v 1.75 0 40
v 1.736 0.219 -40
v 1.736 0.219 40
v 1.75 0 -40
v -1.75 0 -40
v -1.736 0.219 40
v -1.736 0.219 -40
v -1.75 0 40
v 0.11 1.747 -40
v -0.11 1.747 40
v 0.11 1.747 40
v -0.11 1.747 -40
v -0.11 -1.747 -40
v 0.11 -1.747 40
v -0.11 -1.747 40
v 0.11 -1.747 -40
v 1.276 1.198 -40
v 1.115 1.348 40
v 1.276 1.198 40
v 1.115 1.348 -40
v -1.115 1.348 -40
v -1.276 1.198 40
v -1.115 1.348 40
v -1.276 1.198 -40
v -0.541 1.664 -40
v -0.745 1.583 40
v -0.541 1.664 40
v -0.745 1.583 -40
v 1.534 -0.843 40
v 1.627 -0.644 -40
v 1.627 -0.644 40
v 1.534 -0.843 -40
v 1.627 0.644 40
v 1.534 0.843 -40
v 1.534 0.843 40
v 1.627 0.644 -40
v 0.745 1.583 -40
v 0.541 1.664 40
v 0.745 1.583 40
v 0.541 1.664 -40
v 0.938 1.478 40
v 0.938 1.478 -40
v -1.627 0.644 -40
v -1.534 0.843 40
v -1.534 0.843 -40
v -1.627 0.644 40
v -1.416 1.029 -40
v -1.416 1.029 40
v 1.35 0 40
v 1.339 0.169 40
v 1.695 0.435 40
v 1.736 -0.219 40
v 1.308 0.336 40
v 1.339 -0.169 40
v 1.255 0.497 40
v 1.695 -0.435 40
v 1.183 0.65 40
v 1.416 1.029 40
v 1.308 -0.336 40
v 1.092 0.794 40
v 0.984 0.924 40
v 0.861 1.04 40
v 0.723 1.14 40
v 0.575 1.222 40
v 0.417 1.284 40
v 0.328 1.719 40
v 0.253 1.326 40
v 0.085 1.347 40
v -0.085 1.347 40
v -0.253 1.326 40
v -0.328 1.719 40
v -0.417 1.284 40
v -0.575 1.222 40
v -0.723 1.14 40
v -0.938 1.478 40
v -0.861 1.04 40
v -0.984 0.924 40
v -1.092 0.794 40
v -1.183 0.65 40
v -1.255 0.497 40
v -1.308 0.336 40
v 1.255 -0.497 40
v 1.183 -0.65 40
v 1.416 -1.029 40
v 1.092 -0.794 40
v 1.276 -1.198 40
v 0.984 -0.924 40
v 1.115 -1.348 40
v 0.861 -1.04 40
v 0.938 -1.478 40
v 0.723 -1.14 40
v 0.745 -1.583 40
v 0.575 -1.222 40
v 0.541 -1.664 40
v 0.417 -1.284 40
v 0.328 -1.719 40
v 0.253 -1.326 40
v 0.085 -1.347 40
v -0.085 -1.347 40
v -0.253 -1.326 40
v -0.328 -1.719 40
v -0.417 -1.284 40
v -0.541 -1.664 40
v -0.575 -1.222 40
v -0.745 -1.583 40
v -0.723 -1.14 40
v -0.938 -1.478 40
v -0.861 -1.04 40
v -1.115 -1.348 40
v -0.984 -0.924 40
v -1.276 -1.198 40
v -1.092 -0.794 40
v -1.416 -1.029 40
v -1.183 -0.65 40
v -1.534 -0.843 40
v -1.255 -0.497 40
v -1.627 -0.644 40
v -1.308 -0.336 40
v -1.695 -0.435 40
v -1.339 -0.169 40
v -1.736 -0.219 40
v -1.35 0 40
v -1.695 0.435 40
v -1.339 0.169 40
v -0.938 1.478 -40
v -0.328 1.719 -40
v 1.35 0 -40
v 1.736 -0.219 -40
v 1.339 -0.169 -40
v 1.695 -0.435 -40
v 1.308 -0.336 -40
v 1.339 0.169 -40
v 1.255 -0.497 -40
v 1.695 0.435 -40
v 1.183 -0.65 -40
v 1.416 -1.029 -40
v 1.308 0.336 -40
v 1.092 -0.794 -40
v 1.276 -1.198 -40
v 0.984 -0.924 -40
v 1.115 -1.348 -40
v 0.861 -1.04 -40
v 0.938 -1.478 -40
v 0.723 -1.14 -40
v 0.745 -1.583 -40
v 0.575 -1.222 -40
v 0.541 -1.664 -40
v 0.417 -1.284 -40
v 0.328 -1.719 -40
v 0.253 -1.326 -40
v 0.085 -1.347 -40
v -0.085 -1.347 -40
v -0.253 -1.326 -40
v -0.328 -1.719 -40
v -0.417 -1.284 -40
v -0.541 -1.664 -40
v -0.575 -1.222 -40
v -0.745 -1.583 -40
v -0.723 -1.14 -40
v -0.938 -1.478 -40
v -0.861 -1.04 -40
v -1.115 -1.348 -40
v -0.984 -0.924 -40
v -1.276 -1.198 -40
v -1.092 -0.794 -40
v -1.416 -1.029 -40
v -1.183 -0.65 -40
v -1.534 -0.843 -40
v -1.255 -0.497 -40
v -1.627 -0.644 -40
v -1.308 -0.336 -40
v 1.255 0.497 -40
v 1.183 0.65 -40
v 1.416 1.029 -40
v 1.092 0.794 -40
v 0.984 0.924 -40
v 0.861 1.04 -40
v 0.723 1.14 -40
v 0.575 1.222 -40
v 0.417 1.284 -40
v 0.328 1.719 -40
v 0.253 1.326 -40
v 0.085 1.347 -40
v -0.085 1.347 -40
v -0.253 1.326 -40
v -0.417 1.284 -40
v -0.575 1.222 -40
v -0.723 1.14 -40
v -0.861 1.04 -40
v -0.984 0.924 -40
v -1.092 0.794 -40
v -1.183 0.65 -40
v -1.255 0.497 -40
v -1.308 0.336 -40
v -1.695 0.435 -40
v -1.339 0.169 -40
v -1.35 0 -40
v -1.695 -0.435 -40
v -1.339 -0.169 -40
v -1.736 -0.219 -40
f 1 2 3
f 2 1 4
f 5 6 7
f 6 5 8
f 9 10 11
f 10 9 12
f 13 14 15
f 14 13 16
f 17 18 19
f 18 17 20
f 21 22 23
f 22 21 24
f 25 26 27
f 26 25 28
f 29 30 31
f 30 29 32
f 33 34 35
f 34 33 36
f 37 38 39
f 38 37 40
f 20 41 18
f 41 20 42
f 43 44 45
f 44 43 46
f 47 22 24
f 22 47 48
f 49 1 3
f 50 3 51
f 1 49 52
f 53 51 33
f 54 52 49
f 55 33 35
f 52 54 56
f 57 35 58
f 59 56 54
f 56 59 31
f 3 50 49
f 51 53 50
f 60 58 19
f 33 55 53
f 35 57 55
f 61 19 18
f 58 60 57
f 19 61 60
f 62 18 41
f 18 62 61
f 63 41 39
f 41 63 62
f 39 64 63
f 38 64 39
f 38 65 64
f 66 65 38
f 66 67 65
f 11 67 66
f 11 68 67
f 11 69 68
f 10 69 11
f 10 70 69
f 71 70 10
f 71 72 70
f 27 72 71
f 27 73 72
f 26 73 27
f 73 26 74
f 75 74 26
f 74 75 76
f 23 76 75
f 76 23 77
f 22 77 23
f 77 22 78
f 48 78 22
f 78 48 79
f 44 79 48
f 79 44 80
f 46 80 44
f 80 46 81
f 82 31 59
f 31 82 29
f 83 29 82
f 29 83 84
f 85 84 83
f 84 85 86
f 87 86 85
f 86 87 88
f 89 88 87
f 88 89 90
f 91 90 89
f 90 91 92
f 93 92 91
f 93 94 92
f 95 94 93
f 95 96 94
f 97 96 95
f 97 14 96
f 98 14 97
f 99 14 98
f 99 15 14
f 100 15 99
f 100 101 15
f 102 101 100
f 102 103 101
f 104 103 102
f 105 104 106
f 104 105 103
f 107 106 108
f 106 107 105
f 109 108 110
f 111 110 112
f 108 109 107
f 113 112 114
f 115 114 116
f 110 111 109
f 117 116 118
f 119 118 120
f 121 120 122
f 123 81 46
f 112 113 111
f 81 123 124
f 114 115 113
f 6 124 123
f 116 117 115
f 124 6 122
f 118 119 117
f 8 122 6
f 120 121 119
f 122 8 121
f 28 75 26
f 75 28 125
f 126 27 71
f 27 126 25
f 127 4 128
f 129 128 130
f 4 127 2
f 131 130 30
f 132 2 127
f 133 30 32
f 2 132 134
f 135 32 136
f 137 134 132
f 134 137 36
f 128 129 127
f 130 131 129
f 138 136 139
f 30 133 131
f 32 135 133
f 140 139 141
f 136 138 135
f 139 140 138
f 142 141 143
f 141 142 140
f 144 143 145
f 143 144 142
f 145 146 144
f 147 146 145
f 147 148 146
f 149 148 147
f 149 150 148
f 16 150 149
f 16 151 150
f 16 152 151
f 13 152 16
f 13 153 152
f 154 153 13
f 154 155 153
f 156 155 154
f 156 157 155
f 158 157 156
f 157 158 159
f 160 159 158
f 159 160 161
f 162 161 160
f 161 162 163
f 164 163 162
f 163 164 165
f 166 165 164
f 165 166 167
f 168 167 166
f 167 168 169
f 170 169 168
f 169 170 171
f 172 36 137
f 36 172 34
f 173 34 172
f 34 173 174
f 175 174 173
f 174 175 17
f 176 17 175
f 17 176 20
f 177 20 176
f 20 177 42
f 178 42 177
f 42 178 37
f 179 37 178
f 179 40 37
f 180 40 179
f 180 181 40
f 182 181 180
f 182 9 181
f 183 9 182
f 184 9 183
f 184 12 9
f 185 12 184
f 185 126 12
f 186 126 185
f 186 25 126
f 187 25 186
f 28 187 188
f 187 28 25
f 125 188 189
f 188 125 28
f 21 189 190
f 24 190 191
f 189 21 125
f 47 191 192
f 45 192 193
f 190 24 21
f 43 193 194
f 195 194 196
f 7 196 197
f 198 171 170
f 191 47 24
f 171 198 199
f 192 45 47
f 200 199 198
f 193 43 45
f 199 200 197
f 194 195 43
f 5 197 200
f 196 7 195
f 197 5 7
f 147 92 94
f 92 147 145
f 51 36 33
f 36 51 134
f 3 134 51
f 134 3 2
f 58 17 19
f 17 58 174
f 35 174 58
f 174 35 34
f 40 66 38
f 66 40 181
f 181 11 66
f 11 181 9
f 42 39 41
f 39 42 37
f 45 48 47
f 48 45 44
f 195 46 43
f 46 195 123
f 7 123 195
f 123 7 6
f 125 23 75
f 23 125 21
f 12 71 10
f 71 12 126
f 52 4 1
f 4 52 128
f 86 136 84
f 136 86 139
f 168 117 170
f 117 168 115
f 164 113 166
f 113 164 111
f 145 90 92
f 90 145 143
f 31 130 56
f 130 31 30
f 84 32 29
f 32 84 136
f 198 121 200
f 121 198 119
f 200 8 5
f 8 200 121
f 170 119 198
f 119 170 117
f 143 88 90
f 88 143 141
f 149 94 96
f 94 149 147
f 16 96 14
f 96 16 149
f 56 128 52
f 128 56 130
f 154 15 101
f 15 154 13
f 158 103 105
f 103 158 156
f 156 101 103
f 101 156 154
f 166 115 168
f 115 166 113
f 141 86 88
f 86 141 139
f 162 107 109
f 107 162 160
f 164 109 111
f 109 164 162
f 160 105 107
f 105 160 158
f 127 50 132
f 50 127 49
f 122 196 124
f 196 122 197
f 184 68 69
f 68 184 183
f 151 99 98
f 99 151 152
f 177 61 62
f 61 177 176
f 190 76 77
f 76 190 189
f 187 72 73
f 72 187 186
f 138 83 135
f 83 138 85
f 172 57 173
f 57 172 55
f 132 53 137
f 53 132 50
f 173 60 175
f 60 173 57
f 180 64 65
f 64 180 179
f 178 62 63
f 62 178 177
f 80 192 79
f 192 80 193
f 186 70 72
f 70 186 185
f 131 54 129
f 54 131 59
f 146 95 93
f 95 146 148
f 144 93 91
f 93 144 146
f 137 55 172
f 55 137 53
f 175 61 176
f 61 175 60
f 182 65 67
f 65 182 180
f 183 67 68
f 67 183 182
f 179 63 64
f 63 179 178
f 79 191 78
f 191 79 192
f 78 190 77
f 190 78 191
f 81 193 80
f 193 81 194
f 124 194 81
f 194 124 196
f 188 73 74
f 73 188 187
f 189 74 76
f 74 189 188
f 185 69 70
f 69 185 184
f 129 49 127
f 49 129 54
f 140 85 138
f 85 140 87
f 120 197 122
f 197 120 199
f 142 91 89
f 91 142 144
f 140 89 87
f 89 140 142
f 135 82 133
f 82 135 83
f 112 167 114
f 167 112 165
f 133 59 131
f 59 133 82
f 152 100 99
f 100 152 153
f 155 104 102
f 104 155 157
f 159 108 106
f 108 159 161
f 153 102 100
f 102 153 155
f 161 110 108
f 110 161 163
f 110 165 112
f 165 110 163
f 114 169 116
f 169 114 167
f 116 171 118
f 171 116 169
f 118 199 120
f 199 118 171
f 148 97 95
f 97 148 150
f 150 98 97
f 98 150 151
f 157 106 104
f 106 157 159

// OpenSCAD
$fn = 50;


difference() {
	union() {
		translate(v = [0, 0, -40.0000000000]) {
			cylinder(h = 80, r = 1.7500000000);
		}
	}
	union() {
		translate(v = [0, 0, -100.0000000000]) {
			cylinder(h = 200, r = 1.3500000000);
		}
	}
}
